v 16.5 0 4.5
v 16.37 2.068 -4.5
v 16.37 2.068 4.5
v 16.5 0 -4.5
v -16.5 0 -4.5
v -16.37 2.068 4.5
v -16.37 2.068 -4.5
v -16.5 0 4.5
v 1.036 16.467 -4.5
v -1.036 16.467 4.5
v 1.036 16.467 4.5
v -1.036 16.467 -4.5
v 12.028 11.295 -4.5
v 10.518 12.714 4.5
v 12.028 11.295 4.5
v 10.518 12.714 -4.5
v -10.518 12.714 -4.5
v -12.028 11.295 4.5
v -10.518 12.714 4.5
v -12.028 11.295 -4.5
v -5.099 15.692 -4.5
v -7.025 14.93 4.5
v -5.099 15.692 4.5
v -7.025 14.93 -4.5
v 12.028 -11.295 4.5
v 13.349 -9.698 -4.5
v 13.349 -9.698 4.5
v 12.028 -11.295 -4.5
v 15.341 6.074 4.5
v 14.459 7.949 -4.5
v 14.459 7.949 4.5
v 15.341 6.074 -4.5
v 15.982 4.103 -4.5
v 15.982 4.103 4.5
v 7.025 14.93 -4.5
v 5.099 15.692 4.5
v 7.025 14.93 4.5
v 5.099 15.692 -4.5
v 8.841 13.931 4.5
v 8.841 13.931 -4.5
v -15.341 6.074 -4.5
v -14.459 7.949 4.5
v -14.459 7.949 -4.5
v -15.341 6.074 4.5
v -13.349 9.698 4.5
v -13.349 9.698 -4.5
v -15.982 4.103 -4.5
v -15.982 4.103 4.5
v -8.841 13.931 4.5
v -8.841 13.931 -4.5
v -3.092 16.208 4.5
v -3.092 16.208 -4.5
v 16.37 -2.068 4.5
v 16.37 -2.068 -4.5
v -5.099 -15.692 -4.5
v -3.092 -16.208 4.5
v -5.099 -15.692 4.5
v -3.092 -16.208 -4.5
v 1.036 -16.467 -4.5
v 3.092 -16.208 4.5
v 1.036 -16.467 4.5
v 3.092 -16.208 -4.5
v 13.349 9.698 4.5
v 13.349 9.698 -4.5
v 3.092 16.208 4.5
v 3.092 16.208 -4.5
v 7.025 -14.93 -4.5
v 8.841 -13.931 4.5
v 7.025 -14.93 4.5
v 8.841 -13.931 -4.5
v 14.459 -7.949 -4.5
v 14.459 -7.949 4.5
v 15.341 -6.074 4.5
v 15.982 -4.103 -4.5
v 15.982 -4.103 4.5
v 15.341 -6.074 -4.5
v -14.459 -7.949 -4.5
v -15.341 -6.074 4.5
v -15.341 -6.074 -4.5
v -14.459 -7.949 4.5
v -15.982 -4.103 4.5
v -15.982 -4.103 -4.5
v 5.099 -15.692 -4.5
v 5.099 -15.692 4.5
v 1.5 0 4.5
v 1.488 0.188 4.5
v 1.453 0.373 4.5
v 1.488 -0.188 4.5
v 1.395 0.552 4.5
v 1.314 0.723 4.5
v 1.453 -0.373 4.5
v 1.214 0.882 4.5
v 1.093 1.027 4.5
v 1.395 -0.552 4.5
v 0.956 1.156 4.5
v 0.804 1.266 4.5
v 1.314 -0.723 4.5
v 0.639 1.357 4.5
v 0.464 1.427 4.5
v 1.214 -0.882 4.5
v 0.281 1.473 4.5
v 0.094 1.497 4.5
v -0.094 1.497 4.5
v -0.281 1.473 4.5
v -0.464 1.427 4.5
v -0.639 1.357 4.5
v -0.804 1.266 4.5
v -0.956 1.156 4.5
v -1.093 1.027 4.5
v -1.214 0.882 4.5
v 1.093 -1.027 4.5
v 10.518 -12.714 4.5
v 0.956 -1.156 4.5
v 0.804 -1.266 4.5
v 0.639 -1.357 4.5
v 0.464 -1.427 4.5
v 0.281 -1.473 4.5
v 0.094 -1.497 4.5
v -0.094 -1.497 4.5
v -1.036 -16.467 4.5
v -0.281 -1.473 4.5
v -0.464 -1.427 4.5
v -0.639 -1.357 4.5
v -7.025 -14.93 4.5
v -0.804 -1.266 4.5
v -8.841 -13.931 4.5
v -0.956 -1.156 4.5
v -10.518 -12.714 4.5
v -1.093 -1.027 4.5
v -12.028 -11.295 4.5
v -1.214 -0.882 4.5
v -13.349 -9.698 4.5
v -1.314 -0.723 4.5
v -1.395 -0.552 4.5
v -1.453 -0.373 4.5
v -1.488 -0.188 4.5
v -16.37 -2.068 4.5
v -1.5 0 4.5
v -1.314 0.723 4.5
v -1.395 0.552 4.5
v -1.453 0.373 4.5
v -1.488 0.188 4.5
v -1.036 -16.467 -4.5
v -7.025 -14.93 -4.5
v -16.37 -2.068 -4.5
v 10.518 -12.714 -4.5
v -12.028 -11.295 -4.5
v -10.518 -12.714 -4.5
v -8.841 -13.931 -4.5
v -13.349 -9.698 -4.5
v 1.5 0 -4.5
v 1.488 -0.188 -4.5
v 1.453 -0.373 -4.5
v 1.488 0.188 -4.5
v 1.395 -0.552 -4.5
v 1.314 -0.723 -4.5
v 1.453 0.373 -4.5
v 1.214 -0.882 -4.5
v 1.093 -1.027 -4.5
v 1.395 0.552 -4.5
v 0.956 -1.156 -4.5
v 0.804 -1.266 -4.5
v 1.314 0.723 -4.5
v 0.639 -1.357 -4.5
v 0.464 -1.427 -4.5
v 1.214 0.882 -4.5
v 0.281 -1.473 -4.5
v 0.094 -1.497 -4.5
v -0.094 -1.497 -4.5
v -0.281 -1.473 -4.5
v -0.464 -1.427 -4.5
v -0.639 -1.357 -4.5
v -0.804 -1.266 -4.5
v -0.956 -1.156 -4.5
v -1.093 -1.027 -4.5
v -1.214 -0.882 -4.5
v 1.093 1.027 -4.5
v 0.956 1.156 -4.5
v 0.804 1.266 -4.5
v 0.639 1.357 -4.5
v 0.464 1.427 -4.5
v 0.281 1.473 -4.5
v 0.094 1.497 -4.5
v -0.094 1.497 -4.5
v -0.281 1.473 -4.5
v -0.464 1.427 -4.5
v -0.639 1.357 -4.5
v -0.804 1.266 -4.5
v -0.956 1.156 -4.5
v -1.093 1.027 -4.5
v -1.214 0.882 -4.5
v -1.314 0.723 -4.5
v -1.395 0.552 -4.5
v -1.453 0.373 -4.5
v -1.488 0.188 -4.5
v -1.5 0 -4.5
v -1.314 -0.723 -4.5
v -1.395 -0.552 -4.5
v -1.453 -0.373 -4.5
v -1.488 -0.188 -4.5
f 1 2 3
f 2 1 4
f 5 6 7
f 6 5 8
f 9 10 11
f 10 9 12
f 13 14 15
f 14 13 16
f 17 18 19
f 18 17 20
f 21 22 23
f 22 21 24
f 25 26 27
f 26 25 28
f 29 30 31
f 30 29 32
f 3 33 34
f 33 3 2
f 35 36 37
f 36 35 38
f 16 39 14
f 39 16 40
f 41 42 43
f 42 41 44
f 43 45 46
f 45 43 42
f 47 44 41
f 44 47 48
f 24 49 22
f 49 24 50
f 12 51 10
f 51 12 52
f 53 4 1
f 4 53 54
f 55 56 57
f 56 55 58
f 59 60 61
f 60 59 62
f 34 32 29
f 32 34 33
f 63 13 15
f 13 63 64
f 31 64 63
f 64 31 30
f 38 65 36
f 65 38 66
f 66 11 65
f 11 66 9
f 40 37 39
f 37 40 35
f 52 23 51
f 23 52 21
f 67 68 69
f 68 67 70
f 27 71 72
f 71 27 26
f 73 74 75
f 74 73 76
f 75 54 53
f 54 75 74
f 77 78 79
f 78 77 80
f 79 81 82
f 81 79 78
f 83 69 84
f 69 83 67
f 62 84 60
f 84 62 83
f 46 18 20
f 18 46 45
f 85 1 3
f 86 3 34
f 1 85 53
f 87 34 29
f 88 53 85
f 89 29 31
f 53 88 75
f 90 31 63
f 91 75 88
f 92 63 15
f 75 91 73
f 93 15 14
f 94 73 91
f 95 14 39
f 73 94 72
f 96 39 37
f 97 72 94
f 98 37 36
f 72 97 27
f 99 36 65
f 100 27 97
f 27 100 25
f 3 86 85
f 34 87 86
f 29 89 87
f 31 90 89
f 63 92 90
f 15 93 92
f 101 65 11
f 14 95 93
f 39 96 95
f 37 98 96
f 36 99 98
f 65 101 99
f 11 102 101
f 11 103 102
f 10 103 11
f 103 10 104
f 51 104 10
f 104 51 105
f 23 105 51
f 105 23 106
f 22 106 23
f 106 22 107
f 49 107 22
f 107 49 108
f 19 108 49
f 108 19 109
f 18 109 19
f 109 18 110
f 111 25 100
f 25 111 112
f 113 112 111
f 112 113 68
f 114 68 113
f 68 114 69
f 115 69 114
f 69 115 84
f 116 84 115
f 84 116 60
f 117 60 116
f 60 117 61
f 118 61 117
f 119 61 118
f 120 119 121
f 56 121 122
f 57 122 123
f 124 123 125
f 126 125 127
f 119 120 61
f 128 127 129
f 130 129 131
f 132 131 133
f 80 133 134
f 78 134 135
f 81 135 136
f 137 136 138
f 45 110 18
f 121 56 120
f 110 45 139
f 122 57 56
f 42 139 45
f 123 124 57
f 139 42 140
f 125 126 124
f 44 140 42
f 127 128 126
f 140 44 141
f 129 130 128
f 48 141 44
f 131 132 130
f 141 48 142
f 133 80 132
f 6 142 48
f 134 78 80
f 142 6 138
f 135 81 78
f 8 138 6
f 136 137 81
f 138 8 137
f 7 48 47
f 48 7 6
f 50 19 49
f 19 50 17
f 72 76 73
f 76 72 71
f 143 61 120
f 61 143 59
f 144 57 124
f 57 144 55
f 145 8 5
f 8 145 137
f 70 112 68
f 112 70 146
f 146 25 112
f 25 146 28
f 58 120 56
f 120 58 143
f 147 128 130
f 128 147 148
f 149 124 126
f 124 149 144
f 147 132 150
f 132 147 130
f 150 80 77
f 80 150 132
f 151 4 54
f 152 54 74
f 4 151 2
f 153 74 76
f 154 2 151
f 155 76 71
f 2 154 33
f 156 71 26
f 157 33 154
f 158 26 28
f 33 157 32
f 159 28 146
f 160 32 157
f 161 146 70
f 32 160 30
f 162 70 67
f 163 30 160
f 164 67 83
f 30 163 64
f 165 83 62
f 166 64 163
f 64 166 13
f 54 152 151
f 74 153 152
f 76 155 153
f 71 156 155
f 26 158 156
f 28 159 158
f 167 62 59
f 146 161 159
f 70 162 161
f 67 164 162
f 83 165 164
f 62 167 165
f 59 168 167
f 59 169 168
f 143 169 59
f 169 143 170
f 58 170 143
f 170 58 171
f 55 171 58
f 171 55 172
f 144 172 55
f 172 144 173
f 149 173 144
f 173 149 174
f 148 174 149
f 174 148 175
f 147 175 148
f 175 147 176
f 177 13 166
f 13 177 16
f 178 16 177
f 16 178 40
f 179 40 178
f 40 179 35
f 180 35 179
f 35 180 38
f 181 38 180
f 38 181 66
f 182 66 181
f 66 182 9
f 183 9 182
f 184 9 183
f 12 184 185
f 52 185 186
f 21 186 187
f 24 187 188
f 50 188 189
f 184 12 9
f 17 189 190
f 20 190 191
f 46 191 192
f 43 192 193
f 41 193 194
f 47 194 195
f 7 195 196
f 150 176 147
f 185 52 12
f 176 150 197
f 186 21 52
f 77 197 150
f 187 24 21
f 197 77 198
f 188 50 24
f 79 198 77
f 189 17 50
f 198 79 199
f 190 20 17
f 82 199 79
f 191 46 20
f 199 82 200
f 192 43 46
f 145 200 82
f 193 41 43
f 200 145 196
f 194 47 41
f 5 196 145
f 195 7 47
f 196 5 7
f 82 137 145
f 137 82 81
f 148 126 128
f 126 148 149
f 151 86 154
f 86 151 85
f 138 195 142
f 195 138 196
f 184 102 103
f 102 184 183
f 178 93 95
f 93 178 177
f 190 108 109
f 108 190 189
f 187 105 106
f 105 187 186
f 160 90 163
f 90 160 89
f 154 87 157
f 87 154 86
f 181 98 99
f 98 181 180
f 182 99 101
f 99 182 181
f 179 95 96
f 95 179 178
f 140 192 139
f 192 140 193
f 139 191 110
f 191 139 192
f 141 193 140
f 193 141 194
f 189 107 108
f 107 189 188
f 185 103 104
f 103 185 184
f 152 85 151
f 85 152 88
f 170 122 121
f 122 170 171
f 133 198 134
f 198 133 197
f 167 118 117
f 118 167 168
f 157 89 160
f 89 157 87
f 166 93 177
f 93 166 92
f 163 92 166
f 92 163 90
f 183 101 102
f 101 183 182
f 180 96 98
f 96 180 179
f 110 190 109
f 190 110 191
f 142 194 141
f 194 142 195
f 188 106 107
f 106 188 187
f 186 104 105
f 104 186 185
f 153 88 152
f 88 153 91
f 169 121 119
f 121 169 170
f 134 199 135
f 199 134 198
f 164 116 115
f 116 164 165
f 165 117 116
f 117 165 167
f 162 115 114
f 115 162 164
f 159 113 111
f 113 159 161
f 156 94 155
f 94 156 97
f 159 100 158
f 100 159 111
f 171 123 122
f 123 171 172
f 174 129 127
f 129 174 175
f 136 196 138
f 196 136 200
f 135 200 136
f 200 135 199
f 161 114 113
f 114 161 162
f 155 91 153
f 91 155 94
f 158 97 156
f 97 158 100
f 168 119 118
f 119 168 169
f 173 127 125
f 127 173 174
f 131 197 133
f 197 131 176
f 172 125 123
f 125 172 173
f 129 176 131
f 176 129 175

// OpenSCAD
$fn = 50;


difference() {
	union() {
		translate(v = [0, 0, -4.5000000000]) {
			cylinder(h = 9, r = 16.5000000000);
		}
	}
	union() {
		translate(v = [0, 0, -100.0000000000]) {
			cylinder(h = 200, r = 1.5000000000);
		}
	}
}
